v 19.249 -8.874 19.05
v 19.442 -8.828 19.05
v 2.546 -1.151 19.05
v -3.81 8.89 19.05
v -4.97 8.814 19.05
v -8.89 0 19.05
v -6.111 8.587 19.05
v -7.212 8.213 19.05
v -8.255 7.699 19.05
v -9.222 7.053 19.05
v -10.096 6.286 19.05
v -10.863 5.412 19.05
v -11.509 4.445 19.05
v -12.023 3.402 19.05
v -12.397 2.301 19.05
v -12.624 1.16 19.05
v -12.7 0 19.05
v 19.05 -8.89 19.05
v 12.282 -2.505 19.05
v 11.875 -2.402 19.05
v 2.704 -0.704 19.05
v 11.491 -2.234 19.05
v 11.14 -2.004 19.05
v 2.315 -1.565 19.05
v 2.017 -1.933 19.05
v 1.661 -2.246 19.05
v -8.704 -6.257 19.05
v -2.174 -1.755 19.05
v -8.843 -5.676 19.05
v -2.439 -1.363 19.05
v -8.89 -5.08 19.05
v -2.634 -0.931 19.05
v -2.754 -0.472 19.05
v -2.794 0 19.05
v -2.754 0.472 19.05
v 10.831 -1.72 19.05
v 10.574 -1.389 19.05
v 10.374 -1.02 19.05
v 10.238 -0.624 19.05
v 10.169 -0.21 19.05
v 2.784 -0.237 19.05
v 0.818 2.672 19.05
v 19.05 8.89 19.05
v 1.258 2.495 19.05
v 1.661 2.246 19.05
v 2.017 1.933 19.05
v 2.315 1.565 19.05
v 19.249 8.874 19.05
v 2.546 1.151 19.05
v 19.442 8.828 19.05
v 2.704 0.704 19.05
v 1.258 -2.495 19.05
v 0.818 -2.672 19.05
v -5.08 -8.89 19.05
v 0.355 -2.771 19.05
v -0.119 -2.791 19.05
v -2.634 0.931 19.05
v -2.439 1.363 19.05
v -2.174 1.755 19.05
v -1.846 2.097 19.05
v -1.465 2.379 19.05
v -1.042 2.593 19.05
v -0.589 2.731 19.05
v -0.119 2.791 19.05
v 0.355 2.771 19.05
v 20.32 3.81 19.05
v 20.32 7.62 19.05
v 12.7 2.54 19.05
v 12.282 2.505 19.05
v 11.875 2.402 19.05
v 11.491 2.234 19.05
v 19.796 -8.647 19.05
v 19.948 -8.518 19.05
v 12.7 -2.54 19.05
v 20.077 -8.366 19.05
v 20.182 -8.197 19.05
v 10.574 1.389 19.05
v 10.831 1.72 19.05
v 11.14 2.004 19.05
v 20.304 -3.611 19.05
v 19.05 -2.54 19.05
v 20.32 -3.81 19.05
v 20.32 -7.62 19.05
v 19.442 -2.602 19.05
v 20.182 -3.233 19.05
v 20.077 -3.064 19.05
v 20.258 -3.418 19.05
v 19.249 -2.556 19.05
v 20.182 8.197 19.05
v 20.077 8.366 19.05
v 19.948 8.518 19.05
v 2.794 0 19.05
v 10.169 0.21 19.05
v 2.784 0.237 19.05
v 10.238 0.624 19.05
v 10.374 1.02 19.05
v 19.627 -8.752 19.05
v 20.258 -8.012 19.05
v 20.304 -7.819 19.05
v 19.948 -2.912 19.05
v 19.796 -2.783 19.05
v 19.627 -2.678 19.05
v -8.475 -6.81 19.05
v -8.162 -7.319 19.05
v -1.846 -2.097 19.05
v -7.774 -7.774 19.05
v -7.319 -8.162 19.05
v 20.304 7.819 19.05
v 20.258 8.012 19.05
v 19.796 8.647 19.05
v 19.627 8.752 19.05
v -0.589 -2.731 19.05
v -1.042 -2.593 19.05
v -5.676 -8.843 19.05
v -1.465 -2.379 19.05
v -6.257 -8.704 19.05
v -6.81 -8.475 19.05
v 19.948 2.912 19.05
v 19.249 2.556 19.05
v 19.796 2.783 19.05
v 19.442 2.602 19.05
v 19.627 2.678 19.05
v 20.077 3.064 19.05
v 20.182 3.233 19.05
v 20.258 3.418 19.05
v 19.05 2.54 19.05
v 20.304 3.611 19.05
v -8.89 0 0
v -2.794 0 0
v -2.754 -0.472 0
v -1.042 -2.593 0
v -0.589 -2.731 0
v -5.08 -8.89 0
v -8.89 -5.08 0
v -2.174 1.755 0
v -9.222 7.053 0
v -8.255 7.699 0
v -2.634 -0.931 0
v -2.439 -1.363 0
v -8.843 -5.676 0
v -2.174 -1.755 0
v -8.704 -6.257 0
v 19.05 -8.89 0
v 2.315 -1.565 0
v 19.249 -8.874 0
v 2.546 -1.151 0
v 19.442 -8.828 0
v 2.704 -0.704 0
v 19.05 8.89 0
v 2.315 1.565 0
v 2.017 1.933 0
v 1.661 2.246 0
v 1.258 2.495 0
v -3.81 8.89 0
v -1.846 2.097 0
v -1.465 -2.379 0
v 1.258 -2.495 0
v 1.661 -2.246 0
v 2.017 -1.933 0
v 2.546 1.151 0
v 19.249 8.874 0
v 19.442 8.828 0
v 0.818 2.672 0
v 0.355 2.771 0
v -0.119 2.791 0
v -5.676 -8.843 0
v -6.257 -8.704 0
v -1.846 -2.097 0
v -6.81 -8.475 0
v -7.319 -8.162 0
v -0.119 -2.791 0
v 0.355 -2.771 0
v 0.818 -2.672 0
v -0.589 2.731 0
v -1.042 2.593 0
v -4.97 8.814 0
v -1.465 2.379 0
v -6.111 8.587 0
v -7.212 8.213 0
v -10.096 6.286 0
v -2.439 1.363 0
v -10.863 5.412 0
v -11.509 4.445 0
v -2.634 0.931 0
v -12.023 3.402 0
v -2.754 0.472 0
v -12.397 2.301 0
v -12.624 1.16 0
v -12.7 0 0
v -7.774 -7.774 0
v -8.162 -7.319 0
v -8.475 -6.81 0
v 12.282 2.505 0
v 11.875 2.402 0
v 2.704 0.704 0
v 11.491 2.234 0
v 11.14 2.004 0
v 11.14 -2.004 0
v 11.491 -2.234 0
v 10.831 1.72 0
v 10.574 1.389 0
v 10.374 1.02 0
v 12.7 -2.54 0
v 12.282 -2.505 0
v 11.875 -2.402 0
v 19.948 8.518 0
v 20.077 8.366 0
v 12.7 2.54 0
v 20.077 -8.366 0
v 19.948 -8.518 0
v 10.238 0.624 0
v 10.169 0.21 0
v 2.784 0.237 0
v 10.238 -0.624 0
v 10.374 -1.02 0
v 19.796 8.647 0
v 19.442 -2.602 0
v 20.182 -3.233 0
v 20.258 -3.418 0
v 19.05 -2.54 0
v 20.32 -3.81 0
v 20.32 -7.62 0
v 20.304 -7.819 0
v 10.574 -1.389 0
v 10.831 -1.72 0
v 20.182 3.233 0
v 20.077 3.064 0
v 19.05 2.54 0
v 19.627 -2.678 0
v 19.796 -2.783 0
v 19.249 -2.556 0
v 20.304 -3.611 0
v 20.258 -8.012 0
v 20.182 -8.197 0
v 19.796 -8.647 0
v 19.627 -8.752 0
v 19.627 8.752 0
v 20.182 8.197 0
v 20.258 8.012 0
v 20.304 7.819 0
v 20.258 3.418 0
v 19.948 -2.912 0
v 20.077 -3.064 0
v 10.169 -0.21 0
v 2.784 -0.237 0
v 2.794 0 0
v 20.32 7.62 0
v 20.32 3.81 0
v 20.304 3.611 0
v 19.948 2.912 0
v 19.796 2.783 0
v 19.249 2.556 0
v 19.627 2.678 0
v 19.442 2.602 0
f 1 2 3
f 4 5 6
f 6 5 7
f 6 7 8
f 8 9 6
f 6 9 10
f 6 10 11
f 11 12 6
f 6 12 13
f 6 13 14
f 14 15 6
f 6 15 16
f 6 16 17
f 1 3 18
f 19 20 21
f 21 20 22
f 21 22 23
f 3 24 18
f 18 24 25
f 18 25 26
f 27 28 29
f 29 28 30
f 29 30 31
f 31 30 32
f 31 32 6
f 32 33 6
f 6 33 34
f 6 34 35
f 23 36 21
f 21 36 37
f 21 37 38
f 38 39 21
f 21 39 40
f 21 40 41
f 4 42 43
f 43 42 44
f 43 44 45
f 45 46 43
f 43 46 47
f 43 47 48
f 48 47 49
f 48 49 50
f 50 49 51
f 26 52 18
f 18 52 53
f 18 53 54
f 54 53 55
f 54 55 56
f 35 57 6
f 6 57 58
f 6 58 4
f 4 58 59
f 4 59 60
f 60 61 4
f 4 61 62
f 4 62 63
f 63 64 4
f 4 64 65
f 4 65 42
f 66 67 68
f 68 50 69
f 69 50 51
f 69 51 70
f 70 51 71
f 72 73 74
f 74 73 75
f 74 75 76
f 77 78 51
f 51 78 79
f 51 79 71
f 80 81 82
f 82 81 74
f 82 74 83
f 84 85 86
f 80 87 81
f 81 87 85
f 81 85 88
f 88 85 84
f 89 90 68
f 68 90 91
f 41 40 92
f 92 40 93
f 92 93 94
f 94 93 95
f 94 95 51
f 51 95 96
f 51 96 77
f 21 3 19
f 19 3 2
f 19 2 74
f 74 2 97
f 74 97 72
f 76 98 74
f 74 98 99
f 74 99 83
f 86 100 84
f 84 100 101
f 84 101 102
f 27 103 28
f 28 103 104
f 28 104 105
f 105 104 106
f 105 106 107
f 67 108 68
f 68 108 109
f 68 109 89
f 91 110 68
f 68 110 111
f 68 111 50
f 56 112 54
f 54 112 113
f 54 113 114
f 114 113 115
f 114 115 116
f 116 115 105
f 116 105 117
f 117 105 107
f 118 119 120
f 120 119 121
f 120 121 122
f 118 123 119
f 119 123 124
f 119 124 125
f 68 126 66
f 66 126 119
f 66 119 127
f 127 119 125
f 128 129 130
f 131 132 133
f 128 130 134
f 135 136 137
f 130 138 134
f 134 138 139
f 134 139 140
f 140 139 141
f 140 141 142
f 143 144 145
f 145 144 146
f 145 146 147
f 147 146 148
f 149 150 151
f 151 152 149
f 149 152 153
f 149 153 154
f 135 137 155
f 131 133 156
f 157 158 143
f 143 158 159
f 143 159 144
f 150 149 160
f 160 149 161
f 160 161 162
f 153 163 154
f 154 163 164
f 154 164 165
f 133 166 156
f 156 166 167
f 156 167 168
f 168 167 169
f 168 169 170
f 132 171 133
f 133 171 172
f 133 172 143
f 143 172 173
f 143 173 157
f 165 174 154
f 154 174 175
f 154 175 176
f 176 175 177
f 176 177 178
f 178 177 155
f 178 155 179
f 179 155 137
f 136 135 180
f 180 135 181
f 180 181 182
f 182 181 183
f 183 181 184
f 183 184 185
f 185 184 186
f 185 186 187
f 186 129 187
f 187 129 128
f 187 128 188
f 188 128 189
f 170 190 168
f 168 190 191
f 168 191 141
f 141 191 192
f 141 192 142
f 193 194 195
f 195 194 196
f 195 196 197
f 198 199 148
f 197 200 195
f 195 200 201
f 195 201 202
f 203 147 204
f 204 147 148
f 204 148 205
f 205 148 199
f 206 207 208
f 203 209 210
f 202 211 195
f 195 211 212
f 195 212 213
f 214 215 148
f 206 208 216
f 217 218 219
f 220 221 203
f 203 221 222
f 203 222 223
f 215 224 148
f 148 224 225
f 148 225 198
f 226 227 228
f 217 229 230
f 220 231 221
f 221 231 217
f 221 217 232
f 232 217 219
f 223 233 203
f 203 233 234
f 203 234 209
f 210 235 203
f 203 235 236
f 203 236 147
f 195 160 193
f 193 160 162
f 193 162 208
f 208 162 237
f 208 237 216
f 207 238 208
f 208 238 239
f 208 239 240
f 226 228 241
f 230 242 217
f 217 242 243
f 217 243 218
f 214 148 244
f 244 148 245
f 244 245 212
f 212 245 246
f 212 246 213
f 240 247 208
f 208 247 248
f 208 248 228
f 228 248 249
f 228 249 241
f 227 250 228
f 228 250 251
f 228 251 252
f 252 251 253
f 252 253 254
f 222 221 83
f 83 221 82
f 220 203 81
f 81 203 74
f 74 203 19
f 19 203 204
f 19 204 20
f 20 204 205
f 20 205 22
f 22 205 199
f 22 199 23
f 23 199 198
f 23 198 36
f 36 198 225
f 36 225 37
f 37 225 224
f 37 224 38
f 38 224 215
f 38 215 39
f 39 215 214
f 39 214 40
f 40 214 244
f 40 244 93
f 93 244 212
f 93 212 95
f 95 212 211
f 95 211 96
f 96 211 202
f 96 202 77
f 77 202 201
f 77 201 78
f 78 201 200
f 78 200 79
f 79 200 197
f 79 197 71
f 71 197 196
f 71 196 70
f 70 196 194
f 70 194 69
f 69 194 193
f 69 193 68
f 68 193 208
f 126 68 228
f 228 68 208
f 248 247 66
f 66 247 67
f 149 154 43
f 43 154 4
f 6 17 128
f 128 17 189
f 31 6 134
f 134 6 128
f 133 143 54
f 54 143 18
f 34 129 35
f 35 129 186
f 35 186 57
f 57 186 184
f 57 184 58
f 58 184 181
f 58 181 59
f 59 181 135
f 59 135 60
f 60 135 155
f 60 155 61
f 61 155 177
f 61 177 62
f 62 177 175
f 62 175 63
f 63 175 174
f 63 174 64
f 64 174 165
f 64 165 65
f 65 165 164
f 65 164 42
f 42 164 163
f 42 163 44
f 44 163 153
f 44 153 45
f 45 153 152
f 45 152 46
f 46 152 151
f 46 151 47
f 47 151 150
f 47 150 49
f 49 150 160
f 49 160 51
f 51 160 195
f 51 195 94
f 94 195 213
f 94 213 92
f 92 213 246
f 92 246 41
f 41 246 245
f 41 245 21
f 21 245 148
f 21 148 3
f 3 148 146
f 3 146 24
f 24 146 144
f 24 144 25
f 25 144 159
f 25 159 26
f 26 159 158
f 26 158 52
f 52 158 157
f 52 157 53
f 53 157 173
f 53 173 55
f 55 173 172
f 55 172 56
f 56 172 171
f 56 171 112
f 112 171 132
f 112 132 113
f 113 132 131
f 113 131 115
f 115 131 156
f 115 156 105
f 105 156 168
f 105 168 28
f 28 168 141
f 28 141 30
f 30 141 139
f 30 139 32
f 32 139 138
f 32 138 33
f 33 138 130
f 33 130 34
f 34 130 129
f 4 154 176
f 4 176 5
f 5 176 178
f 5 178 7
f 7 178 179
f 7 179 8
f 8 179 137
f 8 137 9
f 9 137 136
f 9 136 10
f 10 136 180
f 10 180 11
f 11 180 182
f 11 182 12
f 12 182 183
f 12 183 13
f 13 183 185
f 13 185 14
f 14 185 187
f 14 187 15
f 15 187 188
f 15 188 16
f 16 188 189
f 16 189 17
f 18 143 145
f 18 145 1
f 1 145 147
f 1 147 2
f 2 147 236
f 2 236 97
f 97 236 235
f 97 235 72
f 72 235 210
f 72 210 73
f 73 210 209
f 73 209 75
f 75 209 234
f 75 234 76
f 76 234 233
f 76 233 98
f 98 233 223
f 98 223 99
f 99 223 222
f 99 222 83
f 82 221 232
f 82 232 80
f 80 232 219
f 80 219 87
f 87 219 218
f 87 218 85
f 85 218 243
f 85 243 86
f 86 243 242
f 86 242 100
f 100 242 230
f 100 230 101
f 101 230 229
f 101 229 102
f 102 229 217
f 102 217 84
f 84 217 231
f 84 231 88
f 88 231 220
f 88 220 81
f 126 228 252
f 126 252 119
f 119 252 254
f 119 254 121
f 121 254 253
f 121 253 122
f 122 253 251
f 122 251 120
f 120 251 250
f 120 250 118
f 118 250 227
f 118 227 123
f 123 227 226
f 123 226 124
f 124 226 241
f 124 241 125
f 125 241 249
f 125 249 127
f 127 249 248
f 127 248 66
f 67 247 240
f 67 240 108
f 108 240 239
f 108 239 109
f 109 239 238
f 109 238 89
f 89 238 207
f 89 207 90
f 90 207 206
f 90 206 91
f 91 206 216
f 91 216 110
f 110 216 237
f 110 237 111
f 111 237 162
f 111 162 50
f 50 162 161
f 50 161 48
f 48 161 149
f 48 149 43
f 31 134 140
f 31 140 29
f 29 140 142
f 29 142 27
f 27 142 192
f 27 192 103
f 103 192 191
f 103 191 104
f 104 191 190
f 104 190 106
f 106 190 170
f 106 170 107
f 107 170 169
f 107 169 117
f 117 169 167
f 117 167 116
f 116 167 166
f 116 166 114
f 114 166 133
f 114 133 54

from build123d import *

# Parameters (mm, degrees)
SKETCH1_R           = 2.794
BOSS_EXTRUDE1_DEPTH = 19.05
FILLET2_R           = 8.89
FRONT_FILLET_R      = 1.27
FILLET3_R           = 3.81


with BuildPart() as part:
    # Sketch1 → Boss-Extrude1 (new body)
    with BuildSketch(Plane.XY):
        with BuildLine():
            Line((-12.7, 0), (-8.89, 0))
            Line((-8.89, 0), (-8.89, -8.89))
            Line((-8.89, -8.89), (20.32, -8.89))
            Line((20.32, -8.89), (20.32, -2.54))
            Line((20.32, -2.54), (12.7, -2.54))
            ThreePointArc((12.7, -2.54), (10.16, 0), (12.7, 2.54))
            Line((12.7, 2.54), (20.32, 2.54))
            Line((20.32, 2.54), (20.32, 8.89))
            Line((20.32, 8.89), (-12.7, 8.89))
            Line((-12.7, 8.89), (-12.7, 0))
        make_face()
        with Locations(Location((0, 0, 0), (0, 0, 180))):
            Circle(SKETCH1_R, mode=Mode.SUBTRACT)
    extrude(amount=BOSS_EXTRUDE1_DEPTH)

    # Fillet2
    fillet2_edges = [part.edges().sort_by_distance(p)[0] for p in [
        (-12.7, 8.89, 9.525),
    ]]
    fillet(fillet2_edges, radius=FILLET2_R - 0.0001)  # a hair under: the kernel refuses the full size

    # front_fillet
    front_fillet_edges = [part.edges().sort_by_distance(p)[0] for p in [
        (20.32, -8.89, 9.525),
        (20.32, 8.89, 9.525),
        (20.32, 2.54, 9.525),
        (20.32, -2.54, 9.525),
    ]]
    fillet(front_fillet_edges, radius=FRONT_FILLET_R)

    # Fillet3
    fillet3_edges = [part.edges().sort_by_distance(p)[0] for p in [
        (-8.89, -8.89, 9.525),
    ]]
    fillet(fillet3_edges, radius=FILLET3_R)


solid = part.part
